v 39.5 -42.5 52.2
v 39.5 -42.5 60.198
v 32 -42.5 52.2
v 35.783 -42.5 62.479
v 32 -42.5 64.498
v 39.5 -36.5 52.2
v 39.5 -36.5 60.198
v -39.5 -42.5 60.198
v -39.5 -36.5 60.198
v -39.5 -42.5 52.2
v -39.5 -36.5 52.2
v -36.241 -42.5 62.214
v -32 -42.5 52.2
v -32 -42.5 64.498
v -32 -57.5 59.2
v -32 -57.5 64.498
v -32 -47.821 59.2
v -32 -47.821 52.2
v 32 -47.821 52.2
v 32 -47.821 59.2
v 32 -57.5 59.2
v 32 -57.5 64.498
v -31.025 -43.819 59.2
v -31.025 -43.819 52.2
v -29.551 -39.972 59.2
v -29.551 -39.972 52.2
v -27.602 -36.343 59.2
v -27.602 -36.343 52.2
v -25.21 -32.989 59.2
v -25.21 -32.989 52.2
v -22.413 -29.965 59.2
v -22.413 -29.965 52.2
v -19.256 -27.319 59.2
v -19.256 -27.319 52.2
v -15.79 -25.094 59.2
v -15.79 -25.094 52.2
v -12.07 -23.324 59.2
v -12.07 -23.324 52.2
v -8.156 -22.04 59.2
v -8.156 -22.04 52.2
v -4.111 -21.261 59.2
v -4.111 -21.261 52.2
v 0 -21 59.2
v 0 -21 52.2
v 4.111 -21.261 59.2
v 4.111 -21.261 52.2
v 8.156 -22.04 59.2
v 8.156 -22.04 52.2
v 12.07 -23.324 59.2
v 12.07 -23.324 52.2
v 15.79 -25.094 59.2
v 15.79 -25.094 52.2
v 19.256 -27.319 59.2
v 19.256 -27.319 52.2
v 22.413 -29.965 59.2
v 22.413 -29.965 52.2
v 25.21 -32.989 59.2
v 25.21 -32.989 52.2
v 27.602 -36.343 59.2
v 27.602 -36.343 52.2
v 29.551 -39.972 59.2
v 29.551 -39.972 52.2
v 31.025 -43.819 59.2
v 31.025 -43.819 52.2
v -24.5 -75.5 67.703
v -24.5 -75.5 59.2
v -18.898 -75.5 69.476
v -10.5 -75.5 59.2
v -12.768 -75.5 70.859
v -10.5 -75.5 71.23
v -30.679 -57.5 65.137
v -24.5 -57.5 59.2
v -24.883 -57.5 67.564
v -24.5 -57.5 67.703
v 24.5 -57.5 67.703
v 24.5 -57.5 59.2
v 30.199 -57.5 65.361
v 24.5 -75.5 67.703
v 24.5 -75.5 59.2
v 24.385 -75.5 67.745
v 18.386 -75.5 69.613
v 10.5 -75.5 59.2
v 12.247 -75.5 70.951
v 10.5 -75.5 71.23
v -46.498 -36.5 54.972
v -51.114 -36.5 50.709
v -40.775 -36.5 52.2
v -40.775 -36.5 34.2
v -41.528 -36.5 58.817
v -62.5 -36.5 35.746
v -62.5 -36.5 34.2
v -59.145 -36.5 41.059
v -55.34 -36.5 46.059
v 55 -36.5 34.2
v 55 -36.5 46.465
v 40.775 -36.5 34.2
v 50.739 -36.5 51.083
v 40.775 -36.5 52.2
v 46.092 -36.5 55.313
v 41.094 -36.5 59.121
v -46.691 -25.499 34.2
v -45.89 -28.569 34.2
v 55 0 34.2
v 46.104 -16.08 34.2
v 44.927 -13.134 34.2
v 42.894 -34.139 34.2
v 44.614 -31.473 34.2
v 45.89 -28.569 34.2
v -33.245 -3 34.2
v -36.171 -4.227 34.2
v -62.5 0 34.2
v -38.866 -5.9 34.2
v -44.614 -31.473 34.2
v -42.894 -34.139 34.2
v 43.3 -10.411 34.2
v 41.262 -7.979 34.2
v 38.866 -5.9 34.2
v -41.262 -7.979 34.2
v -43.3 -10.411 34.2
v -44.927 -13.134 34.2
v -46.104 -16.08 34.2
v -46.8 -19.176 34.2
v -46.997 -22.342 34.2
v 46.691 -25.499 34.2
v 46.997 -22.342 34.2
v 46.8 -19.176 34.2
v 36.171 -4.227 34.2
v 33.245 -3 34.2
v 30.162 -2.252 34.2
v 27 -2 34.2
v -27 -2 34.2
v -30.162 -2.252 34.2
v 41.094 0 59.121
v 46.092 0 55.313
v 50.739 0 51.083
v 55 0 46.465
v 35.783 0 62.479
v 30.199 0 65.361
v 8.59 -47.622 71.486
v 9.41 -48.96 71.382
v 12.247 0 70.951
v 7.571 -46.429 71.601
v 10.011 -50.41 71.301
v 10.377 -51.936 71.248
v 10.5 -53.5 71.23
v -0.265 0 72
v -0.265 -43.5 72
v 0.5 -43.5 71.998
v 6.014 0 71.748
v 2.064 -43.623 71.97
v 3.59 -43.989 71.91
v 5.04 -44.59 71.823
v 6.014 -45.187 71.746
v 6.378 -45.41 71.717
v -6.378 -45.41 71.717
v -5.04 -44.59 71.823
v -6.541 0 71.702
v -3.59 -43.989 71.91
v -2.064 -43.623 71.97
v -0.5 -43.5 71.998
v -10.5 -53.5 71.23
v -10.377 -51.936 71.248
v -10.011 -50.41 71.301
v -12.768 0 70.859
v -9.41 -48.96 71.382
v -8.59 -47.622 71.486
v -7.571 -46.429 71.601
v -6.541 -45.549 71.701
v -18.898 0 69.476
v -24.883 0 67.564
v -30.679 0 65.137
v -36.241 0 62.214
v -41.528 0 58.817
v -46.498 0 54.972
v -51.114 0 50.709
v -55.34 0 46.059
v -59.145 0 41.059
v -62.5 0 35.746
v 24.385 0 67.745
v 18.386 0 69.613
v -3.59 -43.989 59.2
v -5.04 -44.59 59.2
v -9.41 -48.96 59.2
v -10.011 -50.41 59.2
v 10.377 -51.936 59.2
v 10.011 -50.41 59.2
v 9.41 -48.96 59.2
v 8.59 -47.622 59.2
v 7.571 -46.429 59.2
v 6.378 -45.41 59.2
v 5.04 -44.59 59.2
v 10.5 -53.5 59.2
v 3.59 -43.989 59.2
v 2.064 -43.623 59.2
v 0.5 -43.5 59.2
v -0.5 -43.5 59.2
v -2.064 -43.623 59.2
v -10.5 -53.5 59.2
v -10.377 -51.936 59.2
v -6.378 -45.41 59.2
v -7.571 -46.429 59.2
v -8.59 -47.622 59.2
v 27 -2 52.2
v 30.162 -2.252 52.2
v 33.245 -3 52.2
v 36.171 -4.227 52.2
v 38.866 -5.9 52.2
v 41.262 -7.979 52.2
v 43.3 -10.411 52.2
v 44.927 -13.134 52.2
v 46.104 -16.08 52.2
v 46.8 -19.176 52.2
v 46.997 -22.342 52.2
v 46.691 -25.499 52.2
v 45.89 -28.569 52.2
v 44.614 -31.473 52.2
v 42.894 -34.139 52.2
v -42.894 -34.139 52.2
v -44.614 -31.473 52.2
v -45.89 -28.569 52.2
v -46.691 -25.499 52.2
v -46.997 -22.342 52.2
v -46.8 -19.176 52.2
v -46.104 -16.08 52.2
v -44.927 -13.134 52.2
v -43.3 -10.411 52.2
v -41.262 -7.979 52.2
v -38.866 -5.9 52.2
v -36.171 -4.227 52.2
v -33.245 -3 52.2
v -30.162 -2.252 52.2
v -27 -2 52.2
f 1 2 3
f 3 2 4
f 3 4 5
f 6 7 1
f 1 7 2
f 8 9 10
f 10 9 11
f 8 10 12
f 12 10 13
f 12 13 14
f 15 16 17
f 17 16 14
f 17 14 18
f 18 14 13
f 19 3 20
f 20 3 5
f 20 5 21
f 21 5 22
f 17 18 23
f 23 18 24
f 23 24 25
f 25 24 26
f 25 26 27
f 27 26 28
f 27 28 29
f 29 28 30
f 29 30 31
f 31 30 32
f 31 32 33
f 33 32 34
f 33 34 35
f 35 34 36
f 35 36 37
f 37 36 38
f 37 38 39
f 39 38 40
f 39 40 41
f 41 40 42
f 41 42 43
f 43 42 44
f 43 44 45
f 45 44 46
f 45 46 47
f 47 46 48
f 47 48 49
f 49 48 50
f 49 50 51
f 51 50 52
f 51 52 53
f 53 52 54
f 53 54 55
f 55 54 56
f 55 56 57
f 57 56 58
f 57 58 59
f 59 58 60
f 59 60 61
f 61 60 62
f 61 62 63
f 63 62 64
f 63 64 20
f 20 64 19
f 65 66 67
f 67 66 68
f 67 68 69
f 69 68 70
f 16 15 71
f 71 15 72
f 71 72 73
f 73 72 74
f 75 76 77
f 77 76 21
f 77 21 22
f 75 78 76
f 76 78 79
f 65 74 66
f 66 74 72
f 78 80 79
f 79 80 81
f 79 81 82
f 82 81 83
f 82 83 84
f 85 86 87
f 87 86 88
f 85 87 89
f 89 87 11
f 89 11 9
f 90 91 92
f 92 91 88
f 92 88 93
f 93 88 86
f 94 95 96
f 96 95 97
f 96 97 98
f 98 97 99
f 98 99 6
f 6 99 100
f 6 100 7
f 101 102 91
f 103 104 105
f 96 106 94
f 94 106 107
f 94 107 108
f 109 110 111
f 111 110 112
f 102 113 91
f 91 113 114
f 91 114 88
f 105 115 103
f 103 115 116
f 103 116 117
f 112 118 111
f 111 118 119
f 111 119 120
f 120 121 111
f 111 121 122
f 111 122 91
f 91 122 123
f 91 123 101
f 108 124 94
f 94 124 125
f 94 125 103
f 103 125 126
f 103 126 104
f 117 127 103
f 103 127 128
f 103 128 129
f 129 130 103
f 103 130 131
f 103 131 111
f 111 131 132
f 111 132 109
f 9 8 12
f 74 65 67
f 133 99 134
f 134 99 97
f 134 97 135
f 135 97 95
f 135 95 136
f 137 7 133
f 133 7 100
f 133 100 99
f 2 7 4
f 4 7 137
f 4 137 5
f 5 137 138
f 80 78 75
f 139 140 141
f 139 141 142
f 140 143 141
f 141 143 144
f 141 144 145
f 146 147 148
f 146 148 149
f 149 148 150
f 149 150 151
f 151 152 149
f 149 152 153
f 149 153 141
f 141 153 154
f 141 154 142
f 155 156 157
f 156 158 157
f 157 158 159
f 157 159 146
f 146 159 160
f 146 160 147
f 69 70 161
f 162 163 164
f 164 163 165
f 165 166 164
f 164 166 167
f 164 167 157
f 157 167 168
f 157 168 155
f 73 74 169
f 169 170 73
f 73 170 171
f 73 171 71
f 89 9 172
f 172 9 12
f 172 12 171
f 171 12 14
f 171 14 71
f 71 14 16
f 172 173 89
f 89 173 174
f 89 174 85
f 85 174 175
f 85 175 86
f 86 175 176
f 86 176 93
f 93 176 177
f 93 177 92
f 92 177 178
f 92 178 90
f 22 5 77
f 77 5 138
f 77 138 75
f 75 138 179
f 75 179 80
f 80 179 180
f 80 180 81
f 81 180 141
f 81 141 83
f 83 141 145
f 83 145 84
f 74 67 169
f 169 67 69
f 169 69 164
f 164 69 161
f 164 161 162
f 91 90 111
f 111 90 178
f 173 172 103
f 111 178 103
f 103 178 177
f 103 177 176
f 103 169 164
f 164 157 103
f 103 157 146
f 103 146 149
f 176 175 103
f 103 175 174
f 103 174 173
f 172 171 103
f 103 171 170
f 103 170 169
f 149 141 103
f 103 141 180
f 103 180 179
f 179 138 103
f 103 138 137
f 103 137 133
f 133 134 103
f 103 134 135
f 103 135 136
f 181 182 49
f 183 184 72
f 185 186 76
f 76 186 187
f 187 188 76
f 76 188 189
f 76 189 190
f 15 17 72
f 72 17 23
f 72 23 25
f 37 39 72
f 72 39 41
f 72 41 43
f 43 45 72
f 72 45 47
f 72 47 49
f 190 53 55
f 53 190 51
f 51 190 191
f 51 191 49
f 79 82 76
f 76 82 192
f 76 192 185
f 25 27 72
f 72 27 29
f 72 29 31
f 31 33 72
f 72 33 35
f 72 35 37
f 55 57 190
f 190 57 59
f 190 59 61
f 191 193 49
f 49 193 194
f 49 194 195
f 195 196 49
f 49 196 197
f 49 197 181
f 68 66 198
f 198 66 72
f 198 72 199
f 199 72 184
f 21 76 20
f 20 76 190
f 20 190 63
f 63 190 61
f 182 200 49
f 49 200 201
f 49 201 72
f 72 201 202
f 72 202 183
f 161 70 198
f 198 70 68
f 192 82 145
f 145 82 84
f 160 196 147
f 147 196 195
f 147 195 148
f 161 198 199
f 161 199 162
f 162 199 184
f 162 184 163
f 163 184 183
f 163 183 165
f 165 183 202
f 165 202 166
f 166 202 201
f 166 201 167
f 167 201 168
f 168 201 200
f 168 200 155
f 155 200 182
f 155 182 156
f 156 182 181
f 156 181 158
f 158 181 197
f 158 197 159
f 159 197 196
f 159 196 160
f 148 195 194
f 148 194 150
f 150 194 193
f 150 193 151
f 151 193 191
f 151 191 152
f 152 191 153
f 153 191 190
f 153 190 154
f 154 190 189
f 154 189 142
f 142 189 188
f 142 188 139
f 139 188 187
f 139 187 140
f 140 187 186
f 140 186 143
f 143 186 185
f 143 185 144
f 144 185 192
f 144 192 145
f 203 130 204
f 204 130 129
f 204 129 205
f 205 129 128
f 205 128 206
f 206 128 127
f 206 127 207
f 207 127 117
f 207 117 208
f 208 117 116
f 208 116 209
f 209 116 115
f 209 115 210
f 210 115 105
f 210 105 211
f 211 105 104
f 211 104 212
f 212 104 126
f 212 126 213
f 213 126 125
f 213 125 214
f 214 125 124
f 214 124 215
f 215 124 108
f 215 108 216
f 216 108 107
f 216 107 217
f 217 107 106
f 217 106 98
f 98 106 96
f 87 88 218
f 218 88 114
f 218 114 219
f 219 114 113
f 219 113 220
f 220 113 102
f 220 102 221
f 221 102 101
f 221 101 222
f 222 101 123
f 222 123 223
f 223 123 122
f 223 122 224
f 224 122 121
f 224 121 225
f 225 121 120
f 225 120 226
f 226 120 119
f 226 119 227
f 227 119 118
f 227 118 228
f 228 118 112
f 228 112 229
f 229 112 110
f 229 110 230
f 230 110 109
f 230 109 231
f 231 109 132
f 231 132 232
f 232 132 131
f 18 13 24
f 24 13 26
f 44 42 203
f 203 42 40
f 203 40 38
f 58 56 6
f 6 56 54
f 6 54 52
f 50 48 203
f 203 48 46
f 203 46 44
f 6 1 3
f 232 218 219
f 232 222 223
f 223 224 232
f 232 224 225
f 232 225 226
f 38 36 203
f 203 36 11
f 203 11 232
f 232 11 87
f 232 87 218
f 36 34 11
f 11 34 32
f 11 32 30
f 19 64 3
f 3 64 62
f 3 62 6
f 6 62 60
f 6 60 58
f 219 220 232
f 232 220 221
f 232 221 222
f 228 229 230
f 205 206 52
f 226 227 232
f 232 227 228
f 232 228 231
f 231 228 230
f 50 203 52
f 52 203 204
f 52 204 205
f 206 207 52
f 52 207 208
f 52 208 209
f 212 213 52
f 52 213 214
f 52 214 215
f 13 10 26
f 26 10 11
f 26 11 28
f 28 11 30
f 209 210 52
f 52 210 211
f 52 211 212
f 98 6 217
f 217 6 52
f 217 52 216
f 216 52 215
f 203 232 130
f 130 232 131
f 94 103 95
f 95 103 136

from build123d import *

# Parameters (mm, degrees)
BOSS_EXTRUDE1_DEPTH = 36.5
BOSS_EXTRUDE2_DEPTH = 6
BOSS_EXTRUDE3_DEPTH = 15
BOSS_EXTRUDE4_DEPTH = 18
CUT_EXTRUDE2_DEPTH  = 25
SKETCH5_W           = 21
SKETCH5_H           = 37.8
CUT_EXTRUDE1_DEPTH  = 32
FILLET1_R           = 10
CUT_EXTRUDE3_DEPTH  = 18
SKETCH9_W           = 81.549954628
SKETCH9_H           = 20
CUT_EXTRUDE4_DEPTH  = 18
SKETCH10_W          = 7.5
SKETCH10_H          = 36.5
CUT_EXTRUDE6_DEPTH  = 106.049226723


with BuildPart() as part:
    # Sketch1 → Boss-Extrude1 (new body)
    with BuildSketch(Plane(origin=(0, 0, 0), x_dir=(1, 0, 0), z_dir=(0, 1, 0))):
        with BuildLine():
            Line((-62.5, -34.2), (-62.5, -35.745629103))
            ThreePointArc((-62.5, -35.745629103), (0, -72), (62.5, -35.745629103))
            Line((62.5, -35.745629103), (62.5, -34.2))
            Line((62.5, -34.2), (-62.5, -34.2))
        make_face()
    extrude(amount=-BOSS_EXTRUDE1_DEPTH)

    # Sketch2 → Boss-Extrude2 (add)
    with BuildSketch(Plane.XZ.offset(36.5)):
        with BuildLine():
            ThreePointArc((39.5, 60.197591314), (0, 72), (-39.5, 60.197591314))
            Line((-39.5, 60.197591314), (-39.5, 34.2))
            Line((-39.5, 34.2), (39.5, 34.2))
            Line((39.5, 34.2), (39.5, 60.197591314))
        make_face()
    extrude(amount=BOSS_EXTRUDE2_DEPTH)

    # Sketch3 → Boss-Extrude3 (add)
    with BuildSketch(Plane.XZ.offset(42.5)):
        with BuildLine():
            Line((-32, 64.498061986), (-32, 34.2))
            Line((-32, 34.2), (32, 34.2))
            Line((32, 34.2), (32, 64.498061986))
            ThreePointArc((32, 64.498061986), (0, 72), (-32, 64.498061986))
        make_face()
    extrude(amount=BOSS_EXTRUDE3_DEPTH)

    # Sketch4 → Boss-Extrude4 (add)
    with BuildSketch(Plane.XZ.offset(57.5)):
        with BuildLine():
            Line((-24.5, 34.2), (-24.5, 67.703397256))
            ThreePointArc((-24.5, 67.703397256), (0, 72), (24.5, 67.703397256))
            Line((24.5, 67.703397256), (24.5, 34.2))
            Line((24.5, 34.2), (-24.5, 34.2))
        make_face()
    extrude(amount=BOSS_EXTRUDE4_DEPTH)

    # Sketch7 → Cut-Extrude2 (cut)
    with BuildSketch(Plane(origin=(0, 0, 34.2), x_dir=(-1, 0, 0), z_dir=(0, 0, -1))):
        with BuildLine():
            Line((-32.5, -53.5), (-32.5, -86))
            Line((-32.5, -86), (32.5, -86))
            Line((32.5, -86), (32.5, -53.5))
            ThreePointArc((32.5, -53.5), (0, -21), (-32.5, -53.5))
        make_face()
    extrude(amount=-CUT_EXTRUDE2_DEPTH, mode=Mode.SUBTRACT)

    # Sketch5 → Cut-Extrude1 (cut)
    with BuildSketch(Plane.XZ.offset(75.5)):
        with Locations((0, 53.1)):
            Rectangle(SKETCH5_W, SKETCH5_H)
    extrude(amount=-CUT_EXTRUDE1_DEPTH, mode=Mode.SUBTRACT)

    # Fillet1
    fillet1_edges = [part.edges().sort_by_distance(p)[0] for p in [
        (-10.5, -43.5, 65.215130212),
        (10.5, -43.5, 65.215130212),
    ]]
    fillet(fillet1_edges, radius=FILLET1_R)

    # Sketch8 → Cut-Extrude3 (cut)
    with BuildSketch(Plane(origin=(0, 0, 34.2), x_dir=(-1, 0, 0), z_dir=(0, 0, -1))):
        with BuildLine():
            Line((-27, -2), (27, -2))
            ThreePointArc((27, -2), (47, -22), (27, -42))
            Line((27, -42), (-27, -42))
            ThreePointArc((-27, -42), (-47, -22), (-27, -2))
        make_face()
    extrude(amount=-CUT_EXTRUDE3_DEPTH, mode=Mode.SUBTRACT)

    # Sketch9 → Cut-Extrude4 (cut)
    with BuildSketch(Plane(origin=(0, 0, 34.2), x_dir=(-1, 0, 0), z_dir=(0, 0, -1))):
        with Locations((0, -46.5)):
            Rectangle(SKETCH9_W, SKETCH9_H)
    extrude(amount=-CUT_EXTRUDE4_DEPTH, mode=Mode.SUBTRACT)

    # Sketch10 → Cut-Extrude6 (cut, through all)
    with BuildSketch(Plane(origin=(0, 0, 34.2), x_dir=(-1, 0, 0), z_dir=(0, 0, -1))):
        with Locations((-58.75, -18.25)):
            Rectangle(SKETCH10_W, SKETCH10_H)
    extrude(amount=-CUT_EXTRUDE6_DEPTH, mode=Mode.SUBTRACT)


solid = part.part
